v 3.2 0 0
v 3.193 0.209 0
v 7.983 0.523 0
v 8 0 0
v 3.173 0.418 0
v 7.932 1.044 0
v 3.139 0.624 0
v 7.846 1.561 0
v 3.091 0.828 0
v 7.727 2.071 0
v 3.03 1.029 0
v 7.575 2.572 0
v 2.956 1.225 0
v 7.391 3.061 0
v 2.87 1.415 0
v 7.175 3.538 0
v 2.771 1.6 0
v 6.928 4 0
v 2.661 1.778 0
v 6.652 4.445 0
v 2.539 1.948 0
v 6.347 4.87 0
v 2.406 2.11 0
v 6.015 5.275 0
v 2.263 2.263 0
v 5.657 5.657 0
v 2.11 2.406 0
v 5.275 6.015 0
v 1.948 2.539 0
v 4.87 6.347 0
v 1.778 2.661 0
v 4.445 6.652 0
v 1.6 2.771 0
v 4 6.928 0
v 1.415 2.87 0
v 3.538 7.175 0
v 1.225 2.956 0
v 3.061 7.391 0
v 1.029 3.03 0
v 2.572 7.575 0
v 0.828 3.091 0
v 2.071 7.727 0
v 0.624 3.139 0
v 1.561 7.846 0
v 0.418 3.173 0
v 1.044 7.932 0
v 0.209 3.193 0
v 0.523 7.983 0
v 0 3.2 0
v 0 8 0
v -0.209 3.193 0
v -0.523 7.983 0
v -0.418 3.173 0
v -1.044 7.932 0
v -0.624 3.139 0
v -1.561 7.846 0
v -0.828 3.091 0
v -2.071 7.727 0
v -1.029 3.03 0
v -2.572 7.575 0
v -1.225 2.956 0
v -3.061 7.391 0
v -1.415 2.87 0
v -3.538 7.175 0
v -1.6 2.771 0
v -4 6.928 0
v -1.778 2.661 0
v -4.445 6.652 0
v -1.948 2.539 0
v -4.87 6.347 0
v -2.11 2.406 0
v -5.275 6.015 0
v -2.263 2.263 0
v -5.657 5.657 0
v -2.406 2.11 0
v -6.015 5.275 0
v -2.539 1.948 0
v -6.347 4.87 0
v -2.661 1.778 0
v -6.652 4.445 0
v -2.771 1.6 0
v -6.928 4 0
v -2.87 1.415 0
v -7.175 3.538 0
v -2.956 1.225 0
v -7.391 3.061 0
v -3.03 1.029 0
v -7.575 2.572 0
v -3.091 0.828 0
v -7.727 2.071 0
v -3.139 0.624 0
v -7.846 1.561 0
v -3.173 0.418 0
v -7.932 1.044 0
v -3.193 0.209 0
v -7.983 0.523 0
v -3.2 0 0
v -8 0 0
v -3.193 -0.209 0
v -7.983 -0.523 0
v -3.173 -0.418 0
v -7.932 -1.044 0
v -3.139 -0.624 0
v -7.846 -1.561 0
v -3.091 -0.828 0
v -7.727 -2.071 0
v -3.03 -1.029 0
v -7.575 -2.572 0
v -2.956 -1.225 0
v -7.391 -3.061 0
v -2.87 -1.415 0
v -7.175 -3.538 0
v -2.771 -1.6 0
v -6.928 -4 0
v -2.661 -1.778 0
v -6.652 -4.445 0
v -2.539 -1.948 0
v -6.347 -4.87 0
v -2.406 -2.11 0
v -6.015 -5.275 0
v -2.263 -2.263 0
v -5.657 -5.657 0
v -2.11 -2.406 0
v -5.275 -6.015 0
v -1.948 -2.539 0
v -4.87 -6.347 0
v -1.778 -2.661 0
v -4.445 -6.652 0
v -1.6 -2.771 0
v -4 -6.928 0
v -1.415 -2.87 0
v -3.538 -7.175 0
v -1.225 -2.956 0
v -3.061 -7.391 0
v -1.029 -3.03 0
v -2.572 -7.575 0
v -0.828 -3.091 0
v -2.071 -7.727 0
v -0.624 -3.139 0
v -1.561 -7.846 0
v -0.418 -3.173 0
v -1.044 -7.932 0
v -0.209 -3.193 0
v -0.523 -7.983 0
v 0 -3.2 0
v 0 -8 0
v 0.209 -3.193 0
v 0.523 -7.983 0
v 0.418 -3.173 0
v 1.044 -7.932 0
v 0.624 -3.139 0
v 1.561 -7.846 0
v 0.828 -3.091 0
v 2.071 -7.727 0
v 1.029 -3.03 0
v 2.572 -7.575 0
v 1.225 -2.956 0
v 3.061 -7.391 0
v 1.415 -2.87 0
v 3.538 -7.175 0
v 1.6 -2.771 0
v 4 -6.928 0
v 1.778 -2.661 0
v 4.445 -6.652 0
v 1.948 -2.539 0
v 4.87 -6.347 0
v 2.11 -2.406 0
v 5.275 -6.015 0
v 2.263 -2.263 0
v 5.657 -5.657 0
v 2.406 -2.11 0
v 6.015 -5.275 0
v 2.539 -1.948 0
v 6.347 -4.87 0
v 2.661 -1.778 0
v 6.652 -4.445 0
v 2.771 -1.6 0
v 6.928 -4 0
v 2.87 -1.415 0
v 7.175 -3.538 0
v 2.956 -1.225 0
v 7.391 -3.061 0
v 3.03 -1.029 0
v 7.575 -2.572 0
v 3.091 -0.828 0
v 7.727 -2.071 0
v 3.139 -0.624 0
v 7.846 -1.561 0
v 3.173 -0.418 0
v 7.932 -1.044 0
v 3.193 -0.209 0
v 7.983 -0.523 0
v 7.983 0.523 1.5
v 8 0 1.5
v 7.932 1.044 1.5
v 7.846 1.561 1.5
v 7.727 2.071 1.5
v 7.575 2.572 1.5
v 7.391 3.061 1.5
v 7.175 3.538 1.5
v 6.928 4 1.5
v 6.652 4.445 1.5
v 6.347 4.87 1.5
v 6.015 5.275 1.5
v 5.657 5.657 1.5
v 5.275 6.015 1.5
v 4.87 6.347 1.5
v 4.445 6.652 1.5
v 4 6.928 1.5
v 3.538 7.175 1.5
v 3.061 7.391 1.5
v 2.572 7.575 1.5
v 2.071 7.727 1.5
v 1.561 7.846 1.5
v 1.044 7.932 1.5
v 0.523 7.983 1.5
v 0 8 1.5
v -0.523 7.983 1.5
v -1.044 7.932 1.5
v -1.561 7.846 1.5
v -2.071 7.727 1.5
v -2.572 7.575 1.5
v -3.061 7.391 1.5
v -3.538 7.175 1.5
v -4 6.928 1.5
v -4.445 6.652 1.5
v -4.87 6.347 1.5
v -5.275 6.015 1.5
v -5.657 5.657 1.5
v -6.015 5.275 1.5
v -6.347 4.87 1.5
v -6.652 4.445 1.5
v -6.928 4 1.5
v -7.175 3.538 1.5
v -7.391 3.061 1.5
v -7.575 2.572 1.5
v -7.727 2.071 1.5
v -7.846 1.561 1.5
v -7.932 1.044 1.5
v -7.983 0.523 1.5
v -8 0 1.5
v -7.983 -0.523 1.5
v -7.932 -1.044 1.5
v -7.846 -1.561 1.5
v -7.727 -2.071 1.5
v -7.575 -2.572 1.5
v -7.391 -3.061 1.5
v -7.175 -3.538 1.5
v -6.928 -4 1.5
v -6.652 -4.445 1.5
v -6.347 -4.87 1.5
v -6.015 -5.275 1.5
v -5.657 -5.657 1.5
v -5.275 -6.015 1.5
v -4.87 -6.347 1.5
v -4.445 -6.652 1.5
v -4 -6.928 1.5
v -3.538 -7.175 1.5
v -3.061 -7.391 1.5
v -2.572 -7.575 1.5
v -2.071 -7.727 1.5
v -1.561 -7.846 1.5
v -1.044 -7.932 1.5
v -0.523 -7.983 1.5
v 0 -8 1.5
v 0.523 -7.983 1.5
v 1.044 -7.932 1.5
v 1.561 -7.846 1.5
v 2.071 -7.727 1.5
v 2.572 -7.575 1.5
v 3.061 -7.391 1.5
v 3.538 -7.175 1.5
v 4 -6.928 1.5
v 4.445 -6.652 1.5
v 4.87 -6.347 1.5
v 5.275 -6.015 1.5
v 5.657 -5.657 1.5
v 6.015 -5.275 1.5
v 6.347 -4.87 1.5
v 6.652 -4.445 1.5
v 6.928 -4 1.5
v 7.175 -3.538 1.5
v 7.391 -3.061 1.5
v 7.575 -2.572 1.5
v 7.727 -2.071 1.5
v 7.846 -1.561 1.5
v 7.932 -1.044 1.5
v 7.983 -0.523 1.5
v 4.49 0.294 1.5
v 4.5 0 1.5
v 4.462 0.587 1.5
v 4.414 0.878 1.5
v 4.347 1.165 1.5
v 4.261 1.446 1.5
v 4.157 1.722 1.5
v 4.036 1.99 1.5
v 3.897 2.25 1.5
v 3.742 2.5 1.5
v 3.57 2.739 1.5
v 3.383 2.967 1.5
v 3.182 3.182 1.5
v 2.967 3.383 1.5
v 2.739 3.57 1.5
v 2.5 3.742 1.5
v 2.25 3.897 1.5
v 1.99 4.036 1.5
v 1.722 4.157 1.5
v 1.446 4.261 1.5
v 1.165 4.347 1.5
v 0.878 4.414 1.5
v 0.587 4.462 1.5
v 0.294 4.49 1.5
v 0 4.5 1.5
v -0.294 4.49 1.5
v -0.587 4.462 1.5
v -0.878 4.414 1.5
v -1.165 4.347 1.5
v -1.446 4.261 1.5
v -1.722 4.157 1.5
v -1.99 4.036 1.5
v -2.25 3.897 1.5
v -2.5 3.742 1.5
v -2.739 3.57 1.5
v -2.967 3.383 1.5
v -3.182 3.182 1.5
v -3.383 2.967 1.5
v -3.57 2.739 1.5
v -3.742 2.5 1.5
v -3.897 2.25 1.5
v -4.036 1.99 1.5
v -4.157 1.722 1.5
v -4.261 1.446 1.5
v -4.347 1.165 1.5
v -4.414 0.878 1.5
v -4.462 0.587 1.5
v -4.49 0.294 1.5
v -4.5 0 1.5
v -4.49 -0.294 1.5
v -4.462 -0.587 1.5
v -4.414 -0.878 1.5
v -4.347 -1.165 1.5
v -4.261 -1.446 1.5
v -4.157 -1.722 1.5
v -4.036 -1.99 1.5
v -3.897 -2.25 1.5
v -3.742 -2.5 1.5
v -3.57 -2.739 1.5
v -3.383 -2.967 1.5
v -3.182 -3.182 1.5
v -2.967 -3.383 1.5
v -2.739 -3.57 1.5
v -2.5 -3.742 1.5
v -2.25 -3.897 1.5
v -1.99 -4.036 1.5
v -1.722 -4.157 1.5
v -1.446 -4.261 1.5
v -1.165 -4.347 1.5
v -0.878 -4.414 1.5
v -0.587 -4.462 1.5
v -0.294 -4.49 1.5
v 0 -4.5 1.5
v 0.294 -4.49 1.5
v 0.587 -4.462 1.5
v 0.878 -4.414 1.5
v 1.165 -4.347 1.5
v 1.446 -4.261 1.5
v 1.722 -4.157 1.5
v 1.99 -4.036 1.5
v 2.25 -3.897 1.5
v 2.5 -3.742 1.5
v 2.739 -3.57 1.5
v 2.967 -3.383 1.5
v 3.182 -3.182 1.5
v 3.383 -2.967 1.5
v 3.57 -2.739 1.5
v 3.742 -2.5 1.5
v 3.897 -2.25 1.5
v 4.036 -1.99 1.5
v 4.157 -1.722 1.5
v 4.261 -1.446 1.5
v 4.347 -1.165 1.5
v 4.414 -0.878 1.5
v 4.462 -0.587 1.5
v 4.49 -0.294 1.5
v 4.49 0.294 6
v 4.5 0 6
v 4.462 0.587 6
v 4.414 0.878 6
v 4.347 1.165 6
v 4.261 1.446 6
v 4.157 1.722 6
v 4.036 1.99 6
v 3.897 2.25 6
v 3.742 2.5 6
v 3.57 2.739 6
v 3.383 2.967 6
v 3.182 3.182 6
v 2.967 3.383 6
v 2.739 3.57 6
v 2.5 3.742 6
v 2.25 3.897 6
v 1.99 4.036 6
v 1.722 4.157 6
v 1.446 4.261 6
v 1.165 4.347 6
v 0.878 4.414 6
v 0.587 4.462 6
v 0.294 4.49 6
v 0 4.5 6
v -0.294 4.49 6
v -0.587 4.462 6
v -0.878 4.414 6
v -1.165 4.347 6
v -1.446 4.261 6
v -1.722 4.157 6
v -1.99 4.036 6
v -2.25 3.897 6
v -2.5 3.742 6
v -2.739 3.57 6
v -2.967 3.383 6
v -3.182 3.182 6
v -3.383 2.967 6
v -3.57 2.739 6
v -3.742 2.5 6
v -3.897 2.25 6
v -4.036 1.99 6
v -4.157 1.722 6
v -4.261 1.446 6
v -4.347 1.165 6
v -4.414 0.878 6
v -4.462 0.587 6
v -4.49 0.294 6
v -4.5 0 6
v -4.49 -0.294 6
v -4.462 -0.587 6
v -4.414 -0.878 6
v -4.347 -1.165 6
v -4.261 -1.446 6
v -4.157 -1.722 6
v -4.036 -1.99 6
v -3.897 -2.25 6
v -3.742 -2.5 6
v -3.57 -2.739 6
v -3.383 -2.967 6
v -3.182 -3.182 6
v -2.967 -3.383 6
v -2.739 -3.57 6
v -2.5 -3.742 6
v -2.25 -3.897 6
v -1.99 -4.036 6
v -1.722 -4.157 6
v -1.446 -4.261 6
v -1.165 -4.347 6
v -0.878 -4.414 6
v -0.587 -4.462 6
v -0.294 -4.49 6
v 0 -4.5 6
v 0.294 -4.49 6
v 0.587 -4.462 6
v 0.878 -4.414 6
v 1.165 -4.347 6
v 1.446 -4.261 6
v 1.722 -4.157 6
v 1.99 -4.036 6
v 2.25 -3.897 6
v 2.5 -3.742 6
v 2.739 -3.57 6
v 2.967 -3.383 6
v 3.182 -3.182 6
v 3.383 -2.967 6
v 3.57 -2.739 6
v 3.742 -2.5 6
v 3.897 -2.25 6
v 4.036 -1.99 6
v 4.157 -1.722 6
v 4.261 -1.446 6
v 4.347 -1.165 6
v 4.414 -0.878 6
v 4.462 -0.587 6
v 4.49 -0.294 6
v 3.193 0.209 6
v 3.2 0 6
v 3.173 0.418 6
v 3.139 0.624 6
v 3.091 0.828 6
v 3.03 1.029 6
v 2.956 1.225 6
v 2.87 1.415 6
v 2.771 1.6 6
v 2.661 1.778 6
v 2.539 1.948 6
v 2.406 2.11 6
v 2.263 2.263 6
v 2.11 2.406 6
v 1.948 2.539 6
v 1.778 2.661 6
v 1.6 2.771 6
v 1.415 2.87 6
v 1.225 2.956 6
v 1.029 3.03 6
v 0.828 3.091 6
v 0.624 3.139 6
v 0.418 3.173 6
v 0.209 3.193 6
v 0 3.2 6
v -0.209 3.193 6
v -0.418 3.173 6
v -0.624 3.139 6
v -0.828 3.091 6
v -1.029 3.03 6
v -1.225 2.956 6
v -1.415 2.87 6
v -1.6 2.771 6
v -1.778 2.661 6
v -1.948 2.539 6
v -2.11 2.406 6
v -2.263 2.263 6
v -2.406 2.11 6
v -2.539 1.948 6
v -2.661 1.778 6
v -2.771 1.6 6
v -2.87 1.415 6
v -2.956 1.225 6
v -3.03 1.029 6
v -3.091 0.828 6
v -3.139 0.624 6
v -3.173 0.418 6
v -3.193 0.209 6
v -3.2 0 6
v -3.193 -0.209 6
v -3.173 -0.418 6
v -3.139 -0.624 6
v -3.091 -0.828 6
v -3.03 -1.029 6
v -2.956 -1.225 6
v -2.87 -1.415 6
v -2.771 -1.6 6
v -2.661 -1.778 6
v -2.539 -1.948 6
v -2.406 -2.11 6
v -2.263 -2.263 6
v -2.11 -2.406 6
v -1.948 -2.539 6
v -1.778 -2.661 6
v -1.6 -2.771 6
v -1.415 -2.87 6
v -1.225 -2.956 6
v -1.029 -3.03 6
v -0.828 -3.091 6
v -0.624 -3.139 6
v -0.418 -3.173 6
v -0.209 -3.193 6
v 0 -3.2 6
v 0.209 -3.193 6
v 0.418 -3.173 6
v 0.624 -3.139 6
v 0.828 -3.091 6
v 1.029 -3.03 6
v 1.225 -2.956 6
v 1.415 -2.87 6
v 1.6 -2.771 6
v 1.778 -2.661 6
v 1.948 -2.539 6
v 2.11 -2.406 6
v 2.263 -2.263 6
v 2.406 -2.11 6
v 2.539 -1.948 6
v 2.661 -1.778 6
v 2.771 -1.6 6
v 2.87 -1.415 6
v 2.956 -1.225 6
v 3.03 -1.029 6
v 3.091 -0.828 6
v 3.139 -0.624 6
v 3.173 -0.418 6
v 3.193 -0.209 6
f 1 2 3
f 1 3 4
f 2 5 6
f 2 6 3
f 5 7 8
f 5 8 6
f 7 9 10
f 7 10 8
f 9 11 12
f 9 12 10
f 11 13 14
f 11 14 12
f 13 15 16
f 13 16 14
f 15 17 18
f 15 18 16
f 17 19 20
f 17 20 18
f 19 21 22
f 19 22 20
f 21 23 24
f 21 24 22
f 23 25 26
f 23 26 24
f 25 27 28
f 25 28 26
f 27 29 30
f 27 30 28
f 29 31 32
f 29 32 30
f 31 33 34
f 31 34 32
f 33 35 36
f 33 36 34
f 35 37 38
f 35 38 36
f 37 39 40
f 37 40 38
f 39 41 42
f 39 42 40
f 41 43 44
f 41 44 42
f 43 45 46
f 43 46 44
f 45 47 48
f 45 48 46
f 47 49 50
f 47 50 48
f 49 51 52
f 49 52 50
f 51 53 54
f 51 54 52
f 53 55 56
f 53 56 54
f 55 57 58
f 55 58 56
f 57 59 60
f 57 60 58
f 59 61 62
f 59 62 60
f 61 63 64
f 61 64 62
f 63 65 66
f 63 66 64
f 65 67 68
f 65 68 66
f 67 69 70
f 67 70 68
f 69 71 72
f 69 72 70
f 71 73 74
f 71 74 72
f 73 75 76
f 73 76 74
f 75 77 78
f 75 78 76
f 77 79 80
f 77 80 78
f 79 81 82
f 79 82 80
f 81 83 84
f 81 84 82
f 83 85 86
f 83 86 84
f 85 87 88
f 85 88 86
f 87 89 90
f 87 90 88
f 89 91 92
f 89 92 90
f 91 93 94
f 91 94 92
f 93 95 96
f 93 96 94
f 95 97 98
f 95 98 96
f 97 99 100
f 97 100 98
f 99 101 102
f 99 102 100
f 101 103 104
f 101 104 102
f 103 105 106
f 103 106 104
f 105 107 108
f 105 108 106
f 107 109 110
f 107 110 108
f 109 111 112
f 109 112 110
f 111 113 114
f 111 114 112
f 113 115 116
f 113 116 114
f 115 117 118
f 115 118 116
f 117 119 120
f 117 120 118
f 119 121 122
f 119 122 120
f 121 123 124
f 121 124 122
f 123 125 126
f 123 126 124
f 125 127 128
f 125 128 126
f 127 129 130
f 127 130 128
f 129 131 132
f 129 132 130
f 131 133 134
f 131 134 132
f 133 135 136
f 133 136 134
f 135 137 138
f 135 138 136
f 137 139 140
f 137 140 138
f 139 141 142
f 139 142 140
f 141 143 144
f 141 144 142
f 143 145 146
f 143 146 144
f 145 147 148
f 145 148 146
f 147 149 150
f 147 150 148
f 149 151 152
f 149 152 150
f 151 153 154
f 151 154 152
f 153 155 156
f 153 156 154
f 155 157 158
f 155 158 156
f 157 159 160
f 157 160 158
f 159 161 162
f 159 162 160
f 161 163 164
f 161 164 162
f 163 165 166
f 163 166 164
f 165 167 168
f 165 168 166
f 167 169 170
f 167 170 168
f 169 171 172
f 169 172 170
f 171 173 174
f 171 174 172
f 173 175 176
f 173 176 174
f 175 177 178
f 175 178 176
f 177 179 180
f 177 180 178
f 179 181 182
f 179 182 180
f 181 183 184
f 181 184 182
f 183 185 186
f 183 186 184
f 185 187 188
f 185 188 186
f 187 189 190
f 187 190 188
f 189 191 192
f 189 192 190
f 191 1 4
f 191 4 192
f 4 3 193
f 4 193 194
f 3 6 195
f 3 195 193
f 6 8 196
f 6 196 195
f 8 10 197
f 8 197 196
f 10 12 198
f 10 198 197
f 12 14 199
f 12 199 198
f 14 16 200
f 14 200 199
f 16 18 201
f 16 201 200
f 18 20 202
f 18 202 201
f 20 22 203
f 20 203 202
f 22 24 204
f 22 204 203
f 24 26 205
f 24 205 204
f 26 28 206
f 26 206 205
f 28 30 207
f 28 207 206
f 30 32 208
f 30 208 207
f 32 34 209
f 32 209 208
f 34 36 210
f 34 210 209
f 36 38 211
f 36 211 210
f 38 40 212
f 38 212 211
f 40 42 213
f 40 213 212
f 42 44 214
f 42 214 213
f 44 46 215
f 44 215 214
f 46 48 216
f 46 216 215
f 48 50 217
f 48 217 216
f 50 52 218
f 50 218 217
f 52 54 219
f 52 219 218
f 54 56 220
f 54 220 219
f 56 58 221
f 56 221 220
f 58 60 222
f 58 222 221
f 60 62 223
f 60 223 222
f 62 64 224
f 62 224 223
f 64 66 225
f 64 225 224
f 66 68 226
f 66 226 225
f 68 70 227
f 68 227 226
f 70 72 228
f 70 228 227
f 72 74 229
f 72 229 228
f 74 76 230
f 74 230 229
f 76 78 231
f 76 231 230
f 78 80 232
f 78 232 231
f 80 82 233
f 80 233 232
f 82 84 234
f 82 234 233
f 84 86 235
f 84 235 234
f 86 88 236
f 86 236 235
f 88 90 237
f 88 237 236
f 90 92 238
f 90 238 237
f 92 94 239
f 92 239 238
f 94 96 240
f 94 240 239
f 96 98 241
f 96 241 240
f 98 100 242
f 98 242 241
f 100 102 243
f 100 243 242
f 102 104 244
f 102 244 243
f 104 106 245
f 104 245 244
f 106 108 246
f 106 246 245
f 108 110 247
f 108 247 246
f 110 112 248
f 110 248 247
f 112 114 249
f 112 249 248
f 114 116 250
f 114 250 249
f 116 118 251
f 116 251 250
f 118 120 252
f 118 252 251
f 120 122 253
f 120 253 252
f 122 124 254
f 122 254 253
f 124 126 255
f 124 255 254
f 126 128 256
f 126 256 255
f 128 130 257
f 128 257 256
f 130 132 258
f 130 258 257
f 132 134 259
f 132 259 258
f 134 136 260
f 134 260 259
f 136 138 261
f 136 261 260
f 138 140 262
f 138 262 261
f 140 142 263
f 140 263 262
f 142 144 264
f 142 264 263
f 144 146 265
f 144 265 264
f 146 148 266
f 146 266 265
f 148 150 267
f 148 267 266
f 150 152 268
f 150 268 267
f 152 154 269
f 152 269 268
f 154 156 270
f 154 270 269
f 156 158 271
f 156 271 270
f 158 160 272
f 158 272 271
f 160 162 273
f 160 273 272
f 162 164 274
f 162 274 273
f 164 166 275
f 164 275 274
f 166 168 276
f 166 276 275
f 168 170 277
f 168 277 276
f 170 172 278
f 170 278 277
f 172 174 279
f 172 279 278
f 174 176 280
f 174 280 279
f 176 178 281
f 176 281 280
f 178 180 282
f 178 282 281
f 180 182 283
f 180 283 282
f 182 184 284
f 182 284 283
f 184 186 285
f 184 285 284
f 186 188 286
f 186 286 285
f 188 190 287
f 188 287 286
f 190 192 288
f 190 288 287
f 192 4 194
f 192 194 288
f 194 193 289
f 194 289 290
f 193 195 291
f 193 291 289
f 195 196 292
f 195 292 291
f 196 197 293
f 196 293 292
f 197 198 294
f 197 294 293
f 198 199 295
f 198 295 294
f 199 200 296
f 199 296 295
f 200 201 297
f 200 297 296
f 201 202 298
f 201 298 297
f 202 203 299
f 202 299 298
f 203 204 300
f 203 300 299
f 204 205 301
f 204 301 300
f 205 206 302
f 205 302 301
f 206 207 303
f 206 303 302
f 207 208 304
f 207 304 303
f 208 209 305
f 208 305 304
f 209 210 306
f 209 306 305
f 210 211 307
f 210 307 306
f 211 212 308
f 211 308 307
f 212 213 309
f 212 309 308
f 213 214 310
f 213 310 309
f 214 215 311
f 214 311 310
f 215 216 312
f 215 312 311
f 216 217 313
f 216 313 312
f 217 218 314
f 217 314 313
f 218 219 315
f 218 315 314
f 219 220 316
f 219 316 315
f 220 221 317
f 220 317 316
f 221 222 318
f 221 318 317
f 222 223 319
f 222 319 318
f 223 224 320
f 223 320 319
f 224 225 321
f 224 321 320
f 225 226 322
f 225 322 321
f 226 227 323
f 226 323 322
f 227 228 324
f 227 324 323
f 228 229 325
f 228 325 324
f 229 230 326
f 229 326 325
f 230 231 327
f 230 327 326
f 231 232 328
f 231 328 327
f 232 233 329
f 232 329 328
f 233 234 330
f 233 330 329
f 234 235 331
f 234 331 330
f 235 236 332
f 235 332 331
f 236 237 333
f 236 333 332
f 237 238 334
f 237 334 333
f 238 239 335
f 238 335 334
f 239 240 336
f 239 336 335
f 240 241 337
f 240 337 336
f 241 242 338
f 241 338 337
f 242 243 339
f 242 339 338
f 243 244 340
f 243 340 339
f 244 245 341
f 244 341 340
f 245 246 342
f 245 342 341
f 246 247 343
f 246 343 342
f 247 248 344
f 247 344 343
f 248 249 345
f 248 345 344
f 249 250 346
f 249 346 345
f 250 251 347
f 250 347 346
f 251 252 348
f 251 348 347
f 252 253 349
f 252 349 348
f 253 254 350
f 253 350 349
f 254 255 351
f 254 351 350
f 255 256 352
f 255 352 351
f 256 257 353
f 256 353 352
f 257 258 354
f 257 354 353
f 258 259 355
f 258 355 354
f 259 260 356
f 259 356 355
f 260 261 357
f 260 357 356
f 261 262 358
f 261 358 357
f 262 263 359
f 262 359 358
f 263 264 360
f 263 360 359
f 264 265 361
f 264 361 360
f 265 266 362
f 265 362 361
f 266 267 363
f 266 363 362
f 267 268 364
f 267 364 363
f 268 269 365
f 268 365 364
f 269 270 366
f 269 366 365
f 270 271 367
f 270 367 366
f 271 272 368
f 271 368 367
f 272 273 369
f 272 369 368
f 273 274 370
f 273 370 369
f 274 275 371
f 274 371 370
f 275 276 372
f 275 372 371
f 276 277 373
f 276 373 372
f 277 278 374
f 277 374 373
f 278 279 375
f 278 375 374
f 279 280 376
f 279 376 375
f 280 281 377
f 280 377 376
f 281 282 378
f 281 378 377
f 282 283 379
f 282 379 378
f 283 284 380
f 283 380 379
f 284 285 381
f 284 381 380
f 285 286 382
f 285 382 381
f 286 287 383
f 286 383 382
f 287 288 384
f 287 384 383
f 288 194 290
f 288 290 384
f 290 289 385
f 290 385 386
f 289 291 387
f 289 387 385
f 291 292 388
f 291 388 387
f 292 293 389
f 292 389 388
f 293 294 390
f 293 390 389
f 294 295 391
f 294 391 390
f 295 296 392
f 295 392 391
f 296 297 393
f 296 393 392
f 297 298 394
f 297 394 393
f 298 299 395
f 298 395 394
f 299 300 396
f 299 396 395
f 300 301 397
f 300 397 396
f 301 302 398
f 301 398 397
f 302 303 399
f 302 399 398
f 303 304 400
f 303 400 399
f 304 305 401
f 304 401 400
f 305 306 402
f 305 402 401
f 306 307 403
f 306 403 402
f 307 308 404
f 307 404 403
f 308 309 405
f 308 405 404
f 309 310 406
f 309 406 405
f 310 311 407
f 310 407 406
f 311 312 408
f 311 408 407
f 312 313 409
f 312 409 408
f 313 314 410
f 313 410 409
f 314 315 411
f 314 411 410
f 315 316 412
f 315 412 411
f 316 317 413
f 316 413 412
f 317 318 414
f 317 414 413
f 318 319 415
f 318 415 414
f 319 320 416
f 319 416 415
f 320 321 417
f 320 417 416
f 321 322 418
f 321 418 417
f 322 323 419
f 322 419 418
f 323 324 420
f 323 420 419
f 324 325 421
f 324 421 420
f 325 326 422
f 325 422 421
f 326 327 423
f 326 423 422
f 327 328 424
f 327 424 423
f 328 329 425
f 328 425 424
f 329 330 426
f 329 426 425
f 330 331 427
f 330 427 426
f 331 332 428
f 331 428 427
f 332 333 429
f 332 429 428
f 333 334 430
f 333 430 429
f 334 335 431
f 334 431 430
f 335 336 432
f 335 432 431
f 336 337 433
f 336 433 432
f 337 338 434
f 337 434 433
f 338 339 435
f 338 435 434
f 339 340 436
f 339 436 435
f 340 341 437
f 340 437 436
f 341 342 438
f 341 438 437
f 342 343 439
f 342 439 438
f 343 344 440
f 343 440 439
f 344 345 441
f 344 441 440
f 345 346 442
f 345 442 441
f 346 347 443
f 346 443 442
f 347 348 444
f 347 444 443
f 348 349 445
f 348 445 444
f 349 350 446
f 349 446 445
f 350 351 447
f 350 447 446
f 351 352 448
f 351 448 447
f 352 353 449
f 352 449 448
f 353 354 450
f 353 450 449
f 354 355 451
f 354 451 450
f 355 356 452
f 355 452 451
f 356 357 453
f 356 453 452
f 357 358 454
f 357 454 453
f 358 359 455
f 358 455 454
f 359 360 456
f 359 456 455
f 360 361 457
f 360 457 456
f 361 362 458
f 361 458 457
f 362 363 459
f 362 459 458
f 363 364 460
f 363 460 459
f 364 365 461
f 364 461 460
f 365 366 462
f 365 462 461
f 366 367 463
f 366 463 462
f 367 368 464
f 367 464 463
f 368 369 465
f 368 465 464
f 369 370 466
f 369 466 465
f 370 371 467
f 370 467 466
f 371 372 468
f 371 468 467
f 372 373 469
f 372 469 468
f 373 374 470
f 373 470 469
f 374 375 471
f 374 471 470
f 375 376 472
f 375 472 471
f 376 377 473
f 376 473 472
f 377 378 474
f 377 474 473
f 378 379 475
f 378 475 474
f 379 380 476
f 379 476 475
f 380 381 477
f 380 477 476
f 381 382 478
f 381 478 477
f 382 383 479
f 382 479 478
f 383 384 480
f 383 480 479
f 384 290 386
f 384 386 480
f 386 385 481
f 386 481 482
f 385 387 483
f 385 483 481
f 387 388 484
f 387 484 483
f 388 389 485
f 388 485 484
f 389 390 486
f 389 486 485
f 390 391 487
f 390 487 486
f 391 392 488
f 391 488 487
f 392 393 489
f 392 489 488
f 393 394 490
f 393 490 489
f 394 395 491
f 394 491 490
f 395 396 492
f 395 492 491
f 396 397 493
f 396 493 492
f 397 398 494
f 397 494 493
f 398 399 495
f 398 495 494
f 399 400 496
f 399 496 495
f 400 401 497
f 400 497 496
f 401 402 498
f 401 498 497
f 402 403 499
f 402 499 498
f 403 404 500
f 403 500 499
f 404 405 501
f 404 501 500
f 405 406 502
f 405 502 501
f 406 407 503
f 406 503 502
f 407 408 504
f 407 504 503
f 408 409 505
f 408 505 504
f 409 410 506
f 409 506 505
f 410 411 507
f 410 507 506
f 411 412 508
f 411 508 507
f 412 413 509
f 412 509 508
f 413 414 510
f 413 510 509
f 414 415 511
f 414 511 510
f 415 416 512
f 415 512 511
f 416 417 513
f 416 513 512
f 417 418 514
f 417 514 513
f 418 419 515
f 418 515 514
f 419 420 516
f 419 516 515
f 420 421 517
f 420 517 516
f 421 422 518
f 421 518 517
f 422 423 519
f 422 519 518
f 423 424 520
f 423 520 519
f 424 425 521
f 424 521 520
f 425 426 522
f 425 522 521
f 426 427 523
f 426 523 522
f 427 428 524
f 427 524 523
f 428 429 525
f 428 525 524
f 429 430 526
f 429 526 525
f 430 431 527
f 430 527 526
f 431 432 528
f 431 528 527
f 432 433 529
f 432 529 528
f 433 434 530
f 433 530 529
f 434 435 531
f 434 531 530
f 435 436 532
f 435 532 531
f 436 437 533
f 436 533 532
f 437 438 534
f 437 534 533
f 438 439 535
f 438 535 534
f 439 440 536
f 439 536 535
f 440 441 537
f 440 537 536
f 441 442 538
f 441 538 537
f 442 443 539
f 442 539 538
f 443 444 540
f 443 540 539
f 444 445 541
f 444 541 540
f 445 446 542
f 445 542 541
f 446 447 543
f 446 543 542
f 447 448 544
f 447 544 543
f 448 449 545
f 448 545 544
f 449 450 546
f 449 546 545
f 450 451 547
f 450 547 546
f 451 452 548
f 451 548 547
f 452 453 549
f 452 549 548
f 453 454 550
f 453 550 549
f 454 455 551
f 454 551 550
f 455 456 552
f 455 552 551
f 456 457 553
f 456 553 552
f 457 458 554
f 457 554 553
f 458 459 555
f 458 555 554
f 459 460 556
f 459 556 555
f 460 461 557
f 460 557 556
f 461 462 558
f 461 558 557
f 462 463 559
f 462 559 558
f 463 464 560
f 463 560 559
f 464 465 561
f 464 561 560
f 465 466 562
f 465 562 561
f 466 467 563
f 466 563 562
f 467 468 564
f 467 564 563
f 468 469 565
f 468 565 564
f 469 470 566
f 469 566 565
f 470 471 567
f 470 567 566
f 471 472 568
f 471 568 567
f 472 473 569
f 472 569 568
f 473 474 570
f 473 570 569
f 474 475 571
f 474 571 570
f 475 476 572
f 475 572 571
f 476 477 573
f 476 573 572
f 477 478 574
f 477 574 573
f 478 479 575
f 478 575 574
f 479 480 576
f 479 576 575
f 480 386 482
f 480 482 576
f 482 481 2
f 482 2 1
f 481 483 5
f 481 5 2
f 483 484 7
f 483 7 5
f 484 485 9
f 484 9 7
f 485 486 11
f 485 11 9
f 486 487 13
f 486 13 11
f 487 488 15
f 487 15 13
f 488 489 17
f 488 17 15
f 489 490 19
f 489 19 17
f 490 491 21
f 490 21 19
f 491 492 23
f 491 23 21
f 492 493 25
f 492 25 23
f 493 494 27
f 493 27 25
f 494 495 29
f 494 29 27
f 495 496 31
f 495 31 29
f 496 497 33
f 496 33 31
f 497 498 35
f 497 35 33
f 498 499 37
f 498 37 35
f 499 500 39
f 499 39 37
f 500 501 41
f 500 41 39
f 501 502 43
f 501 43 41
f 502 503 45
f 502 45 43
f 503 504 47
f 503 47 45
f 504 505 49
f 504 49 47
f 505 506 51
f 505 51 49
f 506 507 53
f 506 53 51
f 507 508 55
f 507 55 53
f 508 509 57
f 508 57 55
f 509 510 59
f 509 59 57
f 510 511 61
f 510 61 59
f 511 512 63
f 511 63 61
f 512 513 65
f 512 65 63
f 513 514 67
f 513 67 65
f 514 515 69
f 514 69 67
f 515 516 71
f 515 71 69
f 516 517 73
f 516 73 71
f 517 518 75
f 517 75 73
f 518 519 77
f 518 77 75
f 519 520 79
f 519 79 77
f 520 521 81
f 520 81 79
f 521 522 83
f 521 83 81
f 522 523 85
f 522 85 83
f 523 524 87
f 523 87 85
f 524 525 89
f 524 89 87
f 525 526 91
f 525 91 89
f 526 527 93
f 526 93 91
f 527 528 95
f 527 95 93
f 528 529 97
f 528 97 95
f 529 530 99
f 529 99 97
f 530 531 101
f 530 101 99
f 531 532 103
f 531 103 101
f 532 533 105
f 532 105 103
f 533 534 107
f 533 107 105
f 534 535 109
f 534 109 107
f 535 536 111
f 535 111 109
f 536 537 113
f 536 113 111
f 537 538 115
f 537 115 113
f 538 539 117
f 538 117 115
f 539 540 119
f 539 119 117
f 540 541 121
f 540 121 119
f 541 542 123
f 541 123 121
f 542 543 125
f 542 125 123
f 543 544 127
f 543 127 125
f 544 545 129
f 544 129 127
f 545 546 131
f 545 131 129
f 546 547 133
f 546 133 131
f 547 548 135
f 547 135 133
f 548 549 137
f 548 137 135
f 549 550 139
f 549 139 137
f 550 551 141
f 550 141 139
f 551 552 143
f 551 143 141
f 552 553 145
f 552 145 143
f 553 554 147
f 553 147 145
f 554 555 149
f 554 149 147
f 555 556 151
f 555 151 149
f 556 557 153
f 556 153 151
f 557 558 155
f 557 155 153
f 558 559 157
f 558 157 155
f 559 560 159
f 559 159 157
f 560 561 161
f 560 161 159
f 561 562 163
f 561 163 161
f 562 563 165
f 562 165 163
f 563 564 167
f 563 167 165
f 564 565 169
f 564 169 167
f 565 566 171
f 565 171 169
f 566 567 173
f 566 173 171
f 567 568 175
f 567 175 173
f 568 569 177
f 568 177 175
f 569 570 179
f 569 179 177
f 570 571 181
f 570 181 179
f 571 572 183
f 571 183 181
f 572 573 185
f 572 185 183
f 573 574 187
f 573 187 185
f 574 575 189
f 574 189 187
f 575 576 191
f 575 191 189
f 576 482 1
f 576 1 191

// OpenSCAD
// Original MechIntel educational model. CC0-1.0. Units: mm.
// Not a standardized or load-rated component.
$fn=96;
// Section points: [radius, height], mm. Edit to change the profile.
section=[[3.2, 0], [8, 0], [8, 1.5], [4.5, 1.5], [4.5, 6], [3.2, 6]];
rotate_extrude($fn=96) polygon(points=section);
